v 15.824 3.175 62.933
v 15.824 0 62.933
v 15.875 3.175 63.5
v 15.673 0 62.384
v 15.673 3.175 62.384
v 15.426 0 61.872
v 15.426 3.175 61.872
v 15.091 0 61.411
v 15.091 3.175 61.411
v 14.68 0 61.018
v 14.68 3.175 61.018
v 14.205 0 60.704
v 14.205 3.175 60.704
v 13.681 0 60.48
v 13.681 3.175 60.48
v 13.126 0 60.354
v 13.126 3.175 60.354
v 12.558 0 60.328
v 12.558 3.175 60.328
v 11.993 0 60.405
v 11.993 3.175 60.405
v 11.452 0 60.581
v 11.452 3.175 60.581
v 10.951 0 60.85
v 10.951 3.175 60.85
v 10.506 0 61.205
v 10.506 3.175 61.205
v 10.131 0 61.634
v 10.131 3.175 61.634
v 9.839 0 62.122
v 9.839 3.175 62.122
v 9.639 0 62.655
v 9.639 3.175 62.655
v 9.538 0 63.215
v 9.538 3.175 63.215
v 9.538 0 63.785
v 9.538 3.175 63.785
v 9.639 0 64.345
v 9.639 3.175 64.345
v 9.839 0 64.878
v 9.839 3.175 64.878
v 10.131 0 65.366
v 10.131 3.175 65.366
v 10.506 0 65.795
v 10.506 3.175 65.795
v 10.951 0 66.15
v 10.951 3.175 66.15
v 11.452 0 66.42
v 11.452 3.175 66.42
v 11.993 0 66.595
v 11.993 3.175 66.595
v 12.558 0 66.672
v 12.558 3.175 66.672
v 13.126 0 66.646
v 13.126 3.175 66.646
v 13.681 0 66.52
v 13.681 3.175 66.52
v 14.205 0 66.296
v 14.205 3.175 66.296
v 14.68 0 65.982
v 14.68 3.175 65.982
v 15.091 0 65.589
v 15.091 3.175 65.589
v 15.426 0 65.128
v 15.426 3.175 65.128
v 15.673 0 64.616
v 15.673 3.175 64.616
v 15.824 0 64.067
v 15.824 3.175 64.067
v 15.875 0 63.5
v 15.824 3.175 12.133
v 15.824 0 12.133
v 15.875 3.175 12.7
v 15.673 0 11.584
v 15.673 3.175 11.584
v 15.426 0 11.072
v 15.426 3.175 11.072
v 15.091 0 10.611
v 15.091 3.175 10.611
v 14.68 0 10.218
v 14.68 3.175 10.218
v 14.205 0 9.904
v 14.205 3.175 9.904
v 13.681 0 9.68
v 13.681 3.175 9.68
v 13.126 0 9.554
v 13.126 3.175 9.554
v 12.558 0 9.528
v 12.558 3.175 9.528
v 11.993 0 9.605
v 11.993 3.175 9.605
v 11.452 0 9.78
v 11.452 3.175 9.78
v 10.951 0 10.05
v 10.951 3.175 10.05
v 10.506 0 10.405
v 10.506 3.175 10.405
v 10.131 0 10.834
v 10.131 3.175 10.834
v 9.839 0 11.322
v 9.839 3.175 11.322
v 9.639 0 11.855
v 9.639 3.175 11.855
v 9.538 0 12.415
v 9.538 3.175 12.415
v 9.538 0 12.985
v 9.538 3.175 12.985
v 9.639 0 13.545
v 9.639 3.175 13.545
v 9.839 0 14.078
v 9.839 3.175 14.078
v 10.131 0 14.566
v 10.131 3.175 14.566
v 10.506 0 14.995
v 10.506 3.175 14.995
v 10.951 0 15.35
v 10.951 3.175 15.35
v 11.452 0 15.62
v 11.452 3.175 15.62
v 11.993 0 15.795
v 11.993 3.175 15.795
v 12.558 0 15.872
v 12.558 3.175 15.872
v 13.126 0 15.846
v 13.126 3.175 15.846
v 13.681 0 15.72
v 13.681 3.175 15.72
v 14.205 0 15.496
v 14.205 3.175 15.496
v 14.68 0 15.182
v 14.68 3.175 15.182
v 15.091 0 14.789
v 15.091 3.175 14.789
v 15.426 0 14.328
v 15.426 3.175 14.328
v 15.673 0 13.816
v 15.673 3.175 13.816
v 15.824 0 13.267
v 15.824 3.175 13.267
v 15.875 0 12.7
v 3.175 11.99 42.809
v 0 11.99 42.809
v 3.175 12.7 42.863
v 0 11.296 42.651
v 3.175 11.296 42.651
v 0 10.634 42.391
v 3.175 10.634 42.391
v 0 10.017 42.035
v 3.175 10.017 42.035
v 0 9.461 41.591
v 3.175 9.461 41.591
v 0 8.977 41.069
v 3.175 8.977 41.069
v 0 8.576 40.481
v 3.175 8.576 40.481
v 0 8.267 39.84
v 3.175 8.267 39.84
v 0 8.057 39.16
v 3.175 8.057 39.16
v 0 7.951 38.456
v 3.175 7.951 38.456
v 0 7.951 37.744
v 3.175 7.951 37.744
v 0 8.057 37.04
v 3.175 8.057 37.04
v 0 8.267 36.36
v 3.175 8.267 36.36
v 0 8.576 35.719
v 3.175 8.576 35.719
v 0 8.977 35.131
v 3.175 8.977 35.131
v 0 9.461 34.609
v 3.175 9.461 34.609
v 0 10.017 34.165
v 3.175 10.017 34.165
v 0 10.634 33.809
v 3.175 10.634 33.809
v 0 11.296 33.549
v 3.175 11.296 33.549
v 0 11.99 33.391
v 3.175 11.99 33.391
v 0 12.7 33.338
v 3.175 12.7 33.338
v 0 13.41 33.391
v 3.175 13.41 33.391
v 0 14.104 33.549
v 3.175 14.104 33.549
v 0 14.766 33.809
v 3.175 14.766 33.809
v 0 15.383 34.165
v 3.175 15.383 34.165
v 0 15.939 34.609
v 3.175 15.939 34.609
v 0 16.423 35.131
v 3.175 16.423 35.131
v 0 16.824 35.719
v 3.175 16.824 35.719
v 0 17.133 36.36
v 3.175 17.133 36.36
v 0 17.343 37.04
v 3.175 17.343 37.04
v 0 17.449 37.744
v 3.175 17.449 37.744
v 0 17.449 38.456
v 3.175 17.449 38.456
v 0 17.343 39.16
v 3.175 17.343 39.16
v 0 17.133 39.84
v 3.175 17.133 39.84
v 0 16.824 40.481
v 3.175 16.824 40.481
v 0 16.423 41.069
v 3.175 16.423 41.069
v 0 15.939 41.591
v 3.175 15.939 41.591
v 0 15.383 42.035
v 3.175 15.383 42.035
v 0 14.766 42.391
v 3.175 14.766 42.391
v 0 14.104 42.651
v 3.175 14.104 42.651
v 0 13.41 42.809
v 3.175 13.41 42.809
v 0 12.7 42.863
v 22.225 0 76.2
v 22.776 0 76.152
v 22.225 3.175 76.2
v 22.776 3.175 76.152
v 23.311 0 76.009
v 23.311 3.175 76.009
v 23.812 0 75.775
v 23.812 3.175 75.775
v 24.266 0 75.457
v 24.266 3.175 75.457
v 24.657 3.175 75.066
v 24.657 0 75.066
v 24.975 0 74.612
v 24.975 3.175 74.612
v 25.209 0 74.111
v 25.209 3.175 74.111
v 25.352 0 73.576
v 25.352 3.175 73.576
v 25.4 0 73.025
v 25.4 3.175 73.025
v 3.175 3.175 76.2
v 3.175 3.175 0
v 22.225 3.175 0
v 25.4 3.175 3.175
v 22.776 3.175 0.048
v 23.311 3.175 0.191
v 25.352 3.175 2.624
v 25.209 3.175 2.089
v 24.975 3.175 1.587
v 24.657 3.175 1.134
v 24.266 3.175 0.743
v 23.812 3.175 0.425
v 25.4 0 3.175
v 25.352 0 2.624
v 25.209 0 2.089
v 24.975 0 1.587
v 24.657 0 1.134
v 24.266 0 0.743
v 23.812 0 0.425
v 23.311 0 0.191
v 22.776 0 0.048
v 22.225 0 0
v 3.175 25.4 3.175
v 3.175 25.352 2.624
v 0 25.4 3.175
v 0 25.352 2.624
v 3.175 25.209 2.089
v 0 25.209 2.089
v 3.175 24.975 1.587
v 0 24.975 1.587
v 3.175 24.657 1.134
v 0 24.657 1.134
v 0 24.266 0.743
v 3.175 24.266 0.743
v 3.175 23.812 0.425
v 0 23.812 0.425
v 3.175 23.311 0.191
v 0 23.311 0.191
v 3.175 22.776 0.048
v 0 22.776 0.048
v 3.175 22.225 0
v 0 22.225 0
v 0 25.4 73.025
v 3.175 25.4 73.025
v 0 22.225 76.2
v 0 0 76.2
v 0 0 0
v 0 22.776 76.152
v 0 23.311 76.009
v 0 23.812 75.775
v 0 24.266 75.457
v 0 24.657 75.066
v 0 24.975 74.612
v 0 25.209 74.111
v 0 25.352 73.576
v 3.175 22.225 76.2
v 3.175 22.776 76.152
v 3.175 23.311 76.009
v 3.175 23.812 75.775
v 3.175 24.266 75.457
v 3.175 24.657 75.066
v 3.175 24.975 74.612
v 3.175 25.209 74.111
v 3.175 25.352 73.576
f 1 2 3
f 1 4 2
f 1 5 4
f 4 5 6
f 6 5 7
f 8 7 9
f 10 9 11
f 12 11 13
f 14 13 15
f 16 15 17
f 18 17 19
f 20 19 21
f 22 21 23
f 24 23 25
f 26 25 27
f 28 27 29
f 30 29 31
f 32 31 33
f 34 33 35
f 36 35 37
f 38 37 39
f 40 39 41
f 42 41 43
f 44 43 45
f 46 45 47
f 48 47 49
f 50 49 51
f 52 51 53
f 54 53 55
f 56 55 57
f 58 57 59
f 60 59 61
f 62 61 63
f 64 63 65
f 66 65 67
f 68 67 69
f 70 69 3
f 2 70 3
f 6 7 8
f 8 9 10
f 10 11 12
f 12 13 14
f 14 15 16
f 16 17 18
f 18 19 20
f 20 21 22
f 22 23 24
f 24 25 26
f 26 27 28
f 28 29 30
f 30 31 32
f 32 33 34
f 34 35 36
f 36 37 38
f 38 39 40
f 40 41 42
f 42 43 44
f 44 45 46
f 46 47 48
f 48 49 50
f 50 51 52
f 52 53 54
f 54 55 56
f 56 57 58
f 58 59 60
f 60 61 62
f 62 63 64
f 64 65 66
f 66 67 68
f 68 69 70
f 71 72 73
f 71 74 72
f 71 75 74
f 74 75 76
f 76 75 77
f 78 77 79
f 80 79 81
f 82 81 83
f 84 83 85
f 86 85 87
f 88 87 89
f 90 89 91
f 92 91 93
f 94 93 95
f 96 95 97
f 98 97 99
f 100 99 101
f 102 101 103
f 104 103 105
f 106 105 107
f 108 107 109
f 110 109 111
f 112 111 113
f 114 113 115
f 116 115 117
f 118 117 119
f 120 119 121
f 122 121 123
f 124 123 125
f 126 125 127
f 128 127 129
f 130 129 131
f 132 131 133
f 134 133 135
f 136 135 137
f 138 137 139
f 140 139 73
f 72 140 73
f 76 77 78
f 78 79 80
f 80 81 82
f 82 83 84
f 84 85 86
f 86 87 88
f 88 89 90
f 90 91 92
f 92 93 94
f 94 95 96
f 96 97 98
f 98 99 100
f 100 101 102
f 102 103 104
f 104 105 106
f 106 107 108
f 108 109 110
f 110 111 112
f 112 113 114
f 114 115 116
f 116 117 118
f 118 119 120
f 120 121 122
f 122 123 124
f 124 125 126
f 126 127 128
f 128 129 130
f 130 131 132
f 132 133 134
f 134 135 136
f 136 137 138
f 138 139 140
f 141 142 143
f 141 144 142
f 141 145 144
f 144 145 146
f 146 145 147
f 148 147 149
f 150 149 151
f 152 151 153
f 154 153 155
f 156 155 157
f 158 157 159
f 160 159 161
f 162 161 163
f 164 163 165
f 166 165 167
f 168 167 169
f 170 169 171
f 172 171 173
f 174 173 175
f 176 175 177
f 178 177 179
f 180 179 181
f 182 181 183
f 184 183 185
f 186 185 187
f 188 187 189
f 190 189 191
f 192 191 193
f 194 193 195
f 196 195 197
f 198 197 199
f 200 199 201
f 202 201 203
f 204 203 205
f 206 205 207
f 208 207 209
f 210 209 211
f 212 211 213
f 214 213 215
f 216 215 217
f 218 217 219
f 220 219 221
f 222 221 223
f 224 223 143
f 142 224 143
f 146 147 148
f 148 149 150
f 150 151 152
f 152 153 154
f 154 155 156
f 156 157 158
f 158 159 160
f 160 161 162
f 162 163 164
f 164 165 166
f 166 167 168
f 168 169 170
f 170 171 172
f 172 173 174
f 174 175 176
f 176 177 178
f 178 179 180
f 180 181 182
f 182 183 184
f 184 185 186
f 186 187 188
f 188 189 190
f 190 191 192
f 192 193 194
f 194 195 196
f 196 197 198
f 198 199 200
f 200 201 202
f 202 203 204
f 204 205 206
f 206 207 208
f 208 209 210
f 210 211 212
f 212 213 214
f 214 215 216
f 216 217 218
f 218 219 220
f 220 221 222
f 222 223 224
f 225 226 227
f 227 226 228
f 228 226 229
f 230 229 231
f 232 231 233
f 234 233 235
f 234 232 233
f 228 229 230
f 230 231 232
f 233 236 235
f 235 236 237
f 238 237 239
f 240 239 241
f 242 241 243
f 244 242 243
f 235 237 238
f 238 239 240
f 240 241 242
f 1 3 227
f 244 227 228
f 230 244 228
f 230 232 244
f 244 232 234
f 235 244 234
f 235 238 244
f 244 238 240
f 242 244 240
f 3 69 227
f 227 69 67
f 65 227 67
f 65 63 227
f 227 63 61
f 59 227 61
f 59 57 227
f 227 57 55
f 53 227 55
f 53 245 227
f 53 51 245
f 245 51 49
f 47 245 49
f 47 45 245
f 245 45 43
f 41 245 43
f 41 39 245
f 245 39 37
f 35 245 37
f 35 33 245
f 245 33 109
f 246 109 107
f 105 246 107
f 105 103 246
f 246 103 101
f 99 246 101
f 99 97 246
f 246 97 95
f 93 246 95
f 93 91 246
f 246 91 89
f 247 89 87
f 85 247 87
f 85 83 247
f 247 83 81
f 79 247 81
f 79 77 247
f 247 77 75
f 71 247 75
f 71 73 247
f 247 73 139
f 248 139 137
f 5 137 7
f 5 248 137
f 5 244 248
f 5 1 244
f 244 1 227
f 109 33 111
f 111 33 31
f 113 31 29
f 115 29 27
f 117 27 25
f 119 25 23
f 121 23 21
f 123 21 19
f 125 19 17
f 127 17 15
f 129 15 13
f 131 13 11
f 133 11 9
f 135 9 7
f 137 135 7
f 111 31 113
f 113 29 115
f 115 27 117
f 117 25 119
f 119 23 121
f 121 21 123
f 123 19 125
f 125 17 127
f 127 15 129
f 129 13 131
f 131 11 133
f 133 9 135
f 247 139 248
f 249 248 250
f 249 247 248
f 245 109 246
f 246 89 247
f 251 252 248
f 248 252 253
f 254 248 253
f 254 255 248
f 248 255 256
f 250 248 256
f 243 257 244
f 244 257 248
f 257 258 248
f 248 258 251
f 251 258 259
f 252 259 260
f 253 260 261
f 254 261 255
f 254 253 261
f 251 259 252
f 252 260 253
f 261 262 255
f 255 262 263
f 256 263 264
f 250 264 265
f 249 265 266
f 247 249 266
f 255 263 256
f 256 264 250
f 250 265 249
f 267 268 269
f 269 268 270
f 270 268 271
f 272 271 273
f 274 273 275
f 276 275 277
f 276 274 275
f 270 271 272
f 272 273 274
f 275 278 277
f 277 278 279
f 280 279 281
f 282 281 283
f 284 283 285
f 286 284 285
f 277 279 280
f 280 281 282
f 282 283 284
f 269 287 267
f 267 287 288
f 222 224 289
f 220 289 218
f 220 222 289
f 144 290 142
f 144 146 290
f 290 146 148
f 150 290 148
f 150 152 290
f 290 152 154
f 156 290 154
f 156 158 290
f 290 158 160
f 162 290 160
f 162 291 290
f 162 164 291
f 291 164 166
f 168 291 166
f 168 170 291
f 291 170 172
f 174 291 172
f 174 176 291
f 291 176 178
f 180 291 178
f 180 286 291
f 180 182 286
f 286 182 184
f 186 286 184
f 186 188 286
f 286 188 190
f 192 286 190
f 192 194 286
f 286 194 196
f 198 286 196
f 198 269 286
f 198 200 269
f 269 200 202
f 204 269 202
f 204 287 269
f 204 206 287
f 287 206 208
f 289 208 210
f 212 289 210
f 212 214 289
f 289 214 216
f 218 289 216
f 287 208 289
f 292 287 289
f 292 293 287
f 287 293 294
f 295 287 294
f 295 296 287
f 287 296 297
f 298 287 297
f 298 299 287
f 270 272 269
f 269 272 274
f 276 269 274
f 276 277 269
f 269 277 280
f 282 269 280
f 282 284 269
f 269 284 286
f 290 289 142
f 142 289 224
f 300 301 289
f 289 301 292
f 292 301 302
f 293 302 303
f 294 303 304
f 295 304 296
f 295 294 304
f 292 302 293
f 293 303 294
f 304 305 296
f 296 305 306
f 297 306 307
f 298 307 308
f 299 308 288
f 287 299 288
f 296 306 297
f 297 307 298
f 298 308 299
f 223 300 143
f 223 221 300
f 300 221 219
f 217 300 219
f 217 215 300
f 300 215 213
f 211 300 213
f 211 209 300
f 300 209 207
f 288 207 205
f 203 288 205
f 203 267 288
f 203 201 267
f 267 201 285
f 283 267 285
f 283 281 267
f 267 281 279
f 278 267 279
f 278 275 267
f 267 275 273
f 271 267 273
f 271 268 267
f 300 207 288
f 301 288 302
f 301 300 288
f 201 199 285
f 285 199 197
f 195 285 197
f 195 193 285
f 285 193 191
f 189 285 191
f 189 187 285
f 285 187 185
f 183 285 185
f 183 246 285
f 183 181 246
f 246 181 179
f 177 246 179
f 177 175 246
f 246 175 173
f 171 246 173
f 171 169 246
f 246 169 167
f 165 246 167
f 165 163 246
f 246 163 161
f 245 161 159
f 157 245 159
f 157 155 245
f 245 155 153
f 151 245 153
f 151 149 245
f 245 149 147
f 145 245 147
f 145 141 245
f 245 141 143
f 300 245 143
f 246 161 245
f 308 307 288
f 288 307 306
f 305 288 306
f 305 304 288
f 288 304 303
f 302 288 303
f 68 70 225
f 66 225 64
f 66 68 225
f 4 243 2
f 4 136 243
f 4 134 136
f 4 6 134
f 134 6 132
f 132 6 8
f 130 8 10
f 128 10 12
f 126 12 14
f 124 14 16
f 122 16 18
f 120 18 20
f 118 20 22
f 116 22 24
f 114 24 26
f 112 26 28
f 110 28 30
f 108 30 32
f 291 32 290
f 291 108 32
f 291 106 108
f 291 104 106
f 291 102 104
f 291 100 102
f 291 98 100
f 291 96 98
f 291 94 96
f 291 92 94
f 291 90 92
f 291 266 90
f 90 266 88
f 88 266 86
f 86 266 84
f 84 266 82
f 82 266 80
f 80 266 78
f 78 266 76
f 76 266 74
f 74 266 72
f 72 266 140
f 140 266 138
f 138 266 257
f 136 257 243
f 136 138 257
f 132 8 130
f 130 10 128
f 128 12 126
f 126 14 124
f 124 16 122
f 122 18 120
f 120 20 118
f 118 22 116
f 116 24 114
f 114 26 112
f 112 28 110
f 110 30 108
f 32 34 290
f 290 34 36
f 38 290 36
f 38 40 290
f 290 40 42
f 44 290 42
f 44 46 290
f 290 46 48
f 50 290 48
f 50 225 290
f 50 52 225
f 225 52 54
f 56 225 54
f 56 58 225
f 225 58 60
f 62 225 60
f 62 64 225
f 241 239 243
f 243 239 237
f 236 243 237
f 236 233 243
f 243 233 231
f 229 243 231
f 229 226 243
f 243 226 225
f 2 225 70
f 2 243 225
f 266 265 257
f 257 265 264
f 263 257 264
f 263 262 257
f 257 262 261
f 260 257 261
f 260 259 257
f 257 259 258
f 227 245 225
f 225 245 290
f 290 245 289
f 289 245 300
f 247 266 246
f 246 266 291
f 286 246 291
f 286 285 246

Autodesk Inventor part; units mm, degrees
ref_plane "YZ Plane" through (0, 0, 0) normal (1, 0, 0) x (0, 1, 0)
ref_plane "XZ Plane" through (0, 0, 0) normal (0, 1, 0) x (-1, 0, 0)
ref_plane "XY Plane" through (0, 0, 0) normal (0, 0, 1) x (1, 0, 0)
sketch "Sketch1" plane through (0, 0, 0) normal (0, 0, 1) x (1, 0, 0)
  line L0 (0, 25.4) -> (0, 0)
  line L1 (0, 0) -> (25.4, 0)
  line L2 (25.4, 0) -> (25.4, 3.175)
  line L3 (25.4, 3.175) -> (3.175, 3.175)
  line L4 (3.175, 3.175) -> (3.175, 25.4)
  line L5 (3.175, 25.4) -> (0, 25.4)
  dimension "d0" = 3.175
  dimension "d1" = 3.175
  dimension "d2" = 25.4
  dimension "d3" = 25.4
extrude "Extrusion1" add sketch "Sketch1" along normal blind 76.2
fillet "Fillet1" radius 3.175 4 edges at (1.5875, 25.4, 76.2) (1.5875, 25.4, 0) (25.4, 1.5875, 0) (25.4, 1.5875, 76.2)
sketch "Sketch2" plane through (0, 0, 0) normal (-1, 0, 0) x (0, 0, 1)
  line L0 (0, 0) -> (76.2, 0) projected
  line L1 (3.175, 25.4) -> (73.025, 25.4) projected
  circle A0 centre (38.1, 12.7) radius 4.7625
  line L2 (38.1, 25.4) -> (38.1, 12.7)
  line L3 (38.1, 12.7) -> (38.1, 0)
  dimension "d7" = 9.525
extrude "Extrusion2" cut sketch "Sketch2" against normal up to next
sketch "Sketch3" plane through (0, 0, 0) normal (0, -1, 0) x (1, 0, 0)
  line L0 (22.225, 76.2) -> (0, 76.2) projected
  line L1 (0, 0) -> (0, 76.2) projected
  line L2 (22.225, 0) -> (0, 0) projected
  line L3 (25.4, 3.175) -> (25.4, 73.025) projected
  line L4 (0, 63.5) -> (12.7, 63.5)
  line L5 (12.7, 63.5) -> (25.4, 63.5)
  line L6 (12.7, 76.2) -> (12.7, 63.5)
  line L7 (12.7, 63.5) -> (12.7, 12.7)
  line L8 (12.7, 12.7) -> (12.7, 0)
  circle A0 centre (12.7, 63.5) radius 3.175
  circle A1 centre (12.7, 12.7) radius 3.175
  dimension "d10" = 12.7
  dimension "d11" = 6.35
  dimension "d12" = 6.35
extrude "Extrusion3" cut sketch "Sketch3" against normal up to next contours A0 L5 L6 | L6 L4 A0 | L7 A0 L4 | L5 A0 L7 | A1 L8 L7 | L7 L8 A1
properties part number "WheelBlockMount" material "Aluminum-6061"
